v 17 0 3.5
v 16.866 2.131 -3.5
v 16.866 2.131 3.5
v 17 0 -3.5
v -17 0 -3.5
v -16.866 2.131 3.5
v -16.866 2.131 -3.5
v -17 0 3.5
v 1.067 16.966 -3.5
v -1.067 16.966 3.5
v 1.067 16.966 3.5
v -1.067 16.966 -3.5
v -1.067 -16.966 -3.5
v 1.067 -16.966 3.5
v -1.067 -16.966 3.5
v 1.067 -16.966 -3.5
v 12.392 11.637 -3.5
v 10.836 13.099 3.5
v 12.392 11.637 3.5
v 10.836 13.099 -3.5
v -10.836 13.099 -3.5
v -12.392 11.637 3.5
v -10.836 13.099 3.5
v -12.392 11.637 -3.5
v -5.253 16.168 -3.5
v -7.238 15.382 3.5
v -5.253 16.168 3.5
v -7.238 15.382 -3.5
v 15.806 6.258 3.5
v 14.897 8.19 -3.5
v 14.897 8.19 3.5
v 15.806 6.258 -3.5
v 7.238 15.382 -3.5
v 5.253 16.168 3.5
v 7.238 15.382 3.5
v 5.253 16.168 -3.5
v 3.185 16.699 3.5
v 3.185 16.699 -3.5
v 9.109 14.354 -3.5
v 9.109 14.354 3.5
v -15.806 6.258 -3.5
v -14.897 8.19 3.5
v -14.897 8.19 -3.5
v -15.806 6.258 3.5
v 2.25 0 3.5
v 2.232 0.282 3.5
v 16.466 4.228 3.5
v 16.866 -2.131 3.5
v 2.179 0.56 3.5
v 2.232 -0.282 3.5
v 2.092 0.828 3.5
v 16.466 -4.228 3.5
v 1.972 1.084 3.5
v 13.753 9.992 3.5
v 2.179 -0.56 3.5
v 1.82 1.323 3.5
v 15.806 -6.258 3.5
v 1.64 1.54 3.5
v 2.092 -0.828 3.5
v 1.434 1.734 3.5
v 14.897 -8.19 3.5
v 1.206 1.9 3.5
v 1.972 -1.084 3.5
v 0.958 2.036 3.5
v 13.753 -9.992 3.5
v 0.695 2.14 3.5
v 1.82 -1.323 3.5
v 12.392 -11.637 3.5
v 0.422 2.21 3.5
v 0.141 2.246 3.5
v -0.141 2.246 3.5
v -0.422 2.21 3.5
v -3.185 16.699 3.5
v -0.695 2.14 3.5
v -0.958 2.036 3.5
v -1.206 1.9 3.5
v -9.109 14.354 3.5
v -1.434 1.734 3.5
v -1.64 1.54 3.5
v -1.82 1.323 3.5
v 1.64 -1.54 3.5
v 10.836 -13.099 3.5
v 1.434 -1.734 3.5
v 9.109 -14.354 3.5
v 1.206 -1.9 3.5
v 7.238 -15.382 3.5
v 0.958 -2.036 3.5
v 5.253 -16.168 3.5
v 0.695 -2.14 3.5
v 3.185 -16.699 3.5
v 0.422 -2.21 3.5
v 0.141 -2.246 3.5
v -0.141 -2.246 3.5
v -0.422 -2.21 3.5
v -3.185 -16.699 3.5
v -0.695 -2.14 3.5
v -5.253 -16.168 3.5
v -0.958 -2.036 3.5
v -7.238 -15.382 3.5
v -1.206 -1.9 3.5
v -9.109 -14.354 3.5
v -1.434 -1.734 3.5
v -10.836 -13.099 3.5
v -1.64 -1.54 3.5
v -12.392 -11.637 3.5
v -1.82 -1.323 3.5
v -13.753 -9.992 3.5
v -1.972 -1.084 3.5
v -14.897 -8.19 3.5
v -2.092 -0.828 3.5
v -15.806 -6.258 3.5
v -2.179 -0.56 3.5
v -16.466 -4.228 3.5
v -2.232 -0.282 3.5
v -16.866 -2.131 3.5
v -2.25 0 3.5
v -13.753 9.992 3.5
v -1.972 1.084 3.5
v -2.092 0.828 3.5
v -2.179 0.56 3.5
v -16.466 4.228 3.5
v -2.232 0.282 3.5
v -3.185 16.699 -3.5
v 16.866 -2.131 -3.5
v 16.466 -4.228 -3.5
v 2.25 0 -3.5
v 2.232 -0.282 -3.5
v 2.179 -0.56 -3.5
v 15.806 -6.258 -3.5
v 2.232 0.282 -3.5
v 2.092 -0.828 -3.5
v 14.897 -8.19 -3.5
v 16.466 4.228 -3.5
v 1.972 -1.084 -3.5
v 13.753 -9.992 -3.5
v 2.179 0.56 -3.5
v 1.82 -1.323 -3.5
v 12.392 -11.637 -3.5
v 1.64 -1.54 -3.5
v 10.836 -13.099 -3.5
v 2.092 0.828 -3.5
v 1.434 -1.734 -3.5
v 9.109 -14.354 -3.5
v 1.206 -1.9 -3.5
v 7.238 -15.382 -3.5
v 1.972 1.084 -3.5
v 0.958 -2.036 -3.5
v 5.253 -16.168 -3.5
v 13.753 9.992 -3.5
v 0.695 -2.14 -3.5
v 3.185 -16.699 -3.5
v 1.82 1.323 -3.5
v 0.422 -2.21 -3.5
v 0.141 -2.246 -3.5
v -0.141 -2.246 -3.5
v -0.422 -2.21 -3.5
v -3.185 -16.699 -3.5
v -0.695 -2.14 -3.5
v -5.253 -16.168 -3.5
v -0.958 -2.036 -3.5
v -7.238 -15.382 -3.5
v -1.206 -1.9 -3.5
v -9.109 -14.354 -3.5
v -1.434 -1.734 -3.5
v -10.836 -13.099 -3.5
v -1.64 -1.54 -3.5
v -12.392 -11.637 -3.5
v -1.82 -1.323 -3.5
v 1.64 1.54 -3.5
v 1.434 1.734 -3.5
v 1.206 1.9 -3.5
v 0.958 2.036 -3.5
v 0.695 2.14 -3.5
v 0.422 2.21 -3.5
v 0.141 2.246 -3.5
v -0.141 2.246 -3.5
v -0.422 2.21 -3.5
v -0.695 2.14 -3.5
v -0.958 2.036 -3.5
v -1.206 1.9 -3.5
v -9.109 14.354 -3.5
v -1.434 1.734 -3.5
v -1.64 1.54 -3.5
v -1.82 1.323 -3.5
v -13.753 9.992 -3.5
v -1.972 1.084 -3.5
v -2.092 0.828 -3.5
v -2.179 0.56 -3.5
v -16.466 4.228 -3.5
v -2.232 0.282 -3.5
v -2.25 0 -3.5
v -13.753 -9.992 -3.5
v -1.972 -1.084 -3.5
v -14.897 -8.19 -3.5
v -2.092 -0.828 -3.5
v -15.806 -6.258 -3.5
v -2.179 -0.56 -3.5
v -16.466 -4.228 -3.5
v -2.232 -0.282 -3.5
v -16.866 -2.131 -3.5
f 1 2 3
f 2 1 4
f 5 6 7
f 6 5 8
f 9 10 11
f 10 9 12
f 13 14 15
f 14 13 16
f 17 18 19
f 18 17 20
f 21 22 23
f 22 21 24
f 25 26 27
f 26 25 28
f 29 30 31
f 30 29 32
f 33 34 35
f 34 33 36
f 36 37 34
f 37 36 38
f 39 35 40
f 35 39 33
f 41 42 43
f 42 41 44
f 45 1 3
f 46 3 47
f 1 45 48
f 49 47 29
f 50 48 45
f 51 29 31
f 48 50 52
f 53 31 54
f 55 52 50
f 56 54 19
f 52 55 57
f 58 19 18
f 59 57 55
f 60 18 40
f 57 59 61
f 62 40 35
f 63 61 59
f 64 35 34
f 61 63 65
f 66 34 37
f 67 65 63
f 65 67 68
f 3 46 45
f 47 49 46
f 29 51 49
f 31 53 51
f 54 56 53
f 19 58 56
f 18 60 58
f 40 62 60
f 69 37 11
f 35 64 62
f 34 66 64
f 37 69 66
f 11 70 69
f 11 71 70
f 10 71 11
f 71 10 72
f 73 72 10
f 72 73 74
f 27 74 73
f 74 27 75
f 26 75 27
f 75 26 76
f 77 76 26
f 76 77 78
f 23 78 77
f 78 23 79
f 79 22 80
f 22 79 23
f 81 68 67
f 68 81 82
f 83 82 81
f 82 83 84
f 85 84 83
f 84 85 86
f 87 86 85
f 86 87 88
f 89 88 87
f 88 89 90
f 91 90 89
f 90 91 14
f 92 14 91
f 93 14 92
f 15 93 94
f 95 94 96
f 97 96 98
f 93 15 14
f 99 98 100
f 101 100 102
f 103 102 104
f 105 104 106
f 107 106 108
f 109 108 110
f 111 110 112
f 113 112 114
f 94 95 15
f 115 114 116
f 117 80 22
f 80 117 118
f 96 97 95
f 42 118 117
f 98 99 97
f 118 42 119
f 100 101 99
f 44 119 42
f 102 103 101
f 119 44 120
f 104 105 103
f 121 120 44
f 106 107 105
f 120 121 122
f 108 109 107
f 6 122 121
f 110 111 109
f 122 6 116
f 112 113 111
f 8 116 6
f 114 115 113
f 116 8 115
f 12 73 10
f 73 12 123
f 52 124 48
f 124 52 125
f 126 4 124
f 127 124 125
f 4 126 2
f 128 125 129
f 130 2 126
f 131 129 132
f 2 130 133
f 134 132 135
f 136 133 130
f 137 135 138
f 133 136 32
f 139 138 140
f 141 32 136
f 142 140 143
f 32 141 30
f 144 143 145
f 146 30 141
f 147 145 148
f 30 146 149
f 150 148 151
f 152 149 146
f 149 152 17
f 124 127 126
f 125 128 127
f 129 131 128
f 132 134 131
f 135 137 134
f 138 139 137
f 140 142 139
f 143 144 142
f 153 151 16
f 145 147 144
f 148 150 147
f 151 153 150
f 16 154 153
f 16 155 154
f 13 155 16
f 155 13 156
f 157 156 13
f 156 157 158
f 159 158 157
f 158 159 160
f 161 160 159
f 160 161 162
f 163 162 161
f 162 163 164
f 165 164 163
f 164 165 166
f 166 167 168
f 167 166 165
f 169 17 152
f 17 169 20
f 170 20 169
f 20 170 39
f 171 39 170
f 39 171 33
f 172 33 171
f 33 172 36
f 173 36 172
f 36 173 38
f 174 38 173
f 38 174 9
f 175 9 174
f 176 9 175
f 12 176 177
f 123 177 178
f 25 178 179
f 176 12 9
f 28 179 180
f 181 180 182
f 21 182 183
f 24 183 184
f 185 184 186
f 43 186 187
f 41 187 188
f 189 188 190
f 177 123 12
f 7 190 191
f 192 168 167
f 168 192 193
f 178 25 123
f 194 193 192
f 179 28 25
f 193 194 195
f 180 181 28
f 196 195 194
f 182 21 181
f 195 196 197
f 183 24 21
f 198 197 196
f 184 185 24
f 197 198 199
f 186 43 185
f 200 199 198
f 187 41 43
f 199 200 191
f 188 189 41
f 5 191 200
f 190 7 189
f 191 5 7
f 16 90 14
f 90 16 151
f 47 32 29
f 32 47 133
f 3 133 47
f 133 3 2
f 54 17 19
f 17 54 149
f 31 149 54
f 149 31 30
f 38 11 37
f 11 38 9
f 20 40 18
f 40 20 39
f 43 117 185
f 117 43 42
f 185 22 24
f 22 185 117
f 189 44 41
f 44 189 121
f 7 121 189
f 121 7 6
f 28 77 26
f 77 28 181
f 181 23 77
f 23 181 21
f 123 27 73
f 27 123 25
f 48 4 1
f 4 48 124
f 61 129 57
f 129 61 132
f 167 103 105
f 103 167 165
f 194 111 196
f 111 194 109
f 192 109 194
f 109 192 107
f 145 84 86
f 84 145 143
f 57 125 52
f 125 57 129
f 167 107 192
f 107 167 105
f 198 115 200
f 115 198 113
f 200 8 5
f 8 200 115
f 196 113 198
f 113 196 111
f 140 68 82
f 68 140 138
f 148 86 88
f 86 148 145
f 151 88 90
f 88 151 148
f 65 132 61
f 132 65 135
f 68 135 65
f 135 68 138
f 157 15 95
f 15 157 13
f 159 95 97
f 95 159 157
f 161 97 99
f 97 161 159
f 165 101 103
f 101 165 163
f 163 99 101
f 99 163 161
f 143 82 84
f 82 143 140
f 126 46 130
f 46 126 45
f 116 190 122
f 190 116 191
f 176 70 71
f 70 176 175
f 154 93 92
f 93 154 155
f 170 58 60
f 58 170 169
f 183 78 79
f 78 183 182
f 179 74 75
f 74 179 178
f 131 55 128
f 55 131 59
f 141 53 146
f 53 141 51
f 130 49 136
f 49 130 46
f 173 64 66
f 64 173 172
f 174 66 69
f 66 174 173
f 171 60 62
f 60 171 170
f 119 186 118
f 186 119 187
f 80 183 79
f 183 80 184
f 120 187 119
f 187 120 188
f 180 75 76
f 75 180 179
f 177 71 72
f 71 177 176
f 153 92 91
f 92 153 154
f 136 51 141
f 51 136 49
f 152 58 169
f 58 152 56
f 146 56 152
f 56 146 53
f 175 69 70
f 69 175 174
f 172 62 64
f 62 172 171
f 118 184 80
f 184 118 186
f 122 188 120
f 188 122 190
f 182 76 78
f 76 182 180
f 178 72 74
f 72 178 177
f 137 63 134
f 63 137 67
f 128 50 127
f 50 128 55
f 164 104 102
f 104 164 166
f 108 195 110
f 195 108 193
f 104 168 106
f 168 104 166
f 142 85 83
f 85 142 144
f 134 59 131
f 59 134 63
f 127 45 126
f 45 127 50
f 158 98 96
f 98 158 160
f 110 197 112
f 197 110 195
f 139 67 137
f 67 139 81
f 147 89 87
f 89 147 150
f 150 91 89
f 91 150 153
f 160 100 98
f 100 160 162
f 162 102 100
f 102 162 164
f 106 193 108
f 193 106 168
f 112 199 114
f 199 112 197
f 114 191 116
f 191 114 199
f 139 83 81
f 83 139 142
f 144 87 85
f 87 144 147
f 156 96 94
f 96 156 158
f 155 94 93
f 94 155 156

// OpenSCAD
$fn = 50;


difference() {
	union() {
		translate(v = [0, 0, -3.5000000000]) {
			cylinder(h = 7, r = 17.0000000000);
		}
	}
	union() {
		translate(v = [0, 0, -100.0000000000]) {
			cylinder(h = 200, r = 2.2500000000);
		}
	}
}
